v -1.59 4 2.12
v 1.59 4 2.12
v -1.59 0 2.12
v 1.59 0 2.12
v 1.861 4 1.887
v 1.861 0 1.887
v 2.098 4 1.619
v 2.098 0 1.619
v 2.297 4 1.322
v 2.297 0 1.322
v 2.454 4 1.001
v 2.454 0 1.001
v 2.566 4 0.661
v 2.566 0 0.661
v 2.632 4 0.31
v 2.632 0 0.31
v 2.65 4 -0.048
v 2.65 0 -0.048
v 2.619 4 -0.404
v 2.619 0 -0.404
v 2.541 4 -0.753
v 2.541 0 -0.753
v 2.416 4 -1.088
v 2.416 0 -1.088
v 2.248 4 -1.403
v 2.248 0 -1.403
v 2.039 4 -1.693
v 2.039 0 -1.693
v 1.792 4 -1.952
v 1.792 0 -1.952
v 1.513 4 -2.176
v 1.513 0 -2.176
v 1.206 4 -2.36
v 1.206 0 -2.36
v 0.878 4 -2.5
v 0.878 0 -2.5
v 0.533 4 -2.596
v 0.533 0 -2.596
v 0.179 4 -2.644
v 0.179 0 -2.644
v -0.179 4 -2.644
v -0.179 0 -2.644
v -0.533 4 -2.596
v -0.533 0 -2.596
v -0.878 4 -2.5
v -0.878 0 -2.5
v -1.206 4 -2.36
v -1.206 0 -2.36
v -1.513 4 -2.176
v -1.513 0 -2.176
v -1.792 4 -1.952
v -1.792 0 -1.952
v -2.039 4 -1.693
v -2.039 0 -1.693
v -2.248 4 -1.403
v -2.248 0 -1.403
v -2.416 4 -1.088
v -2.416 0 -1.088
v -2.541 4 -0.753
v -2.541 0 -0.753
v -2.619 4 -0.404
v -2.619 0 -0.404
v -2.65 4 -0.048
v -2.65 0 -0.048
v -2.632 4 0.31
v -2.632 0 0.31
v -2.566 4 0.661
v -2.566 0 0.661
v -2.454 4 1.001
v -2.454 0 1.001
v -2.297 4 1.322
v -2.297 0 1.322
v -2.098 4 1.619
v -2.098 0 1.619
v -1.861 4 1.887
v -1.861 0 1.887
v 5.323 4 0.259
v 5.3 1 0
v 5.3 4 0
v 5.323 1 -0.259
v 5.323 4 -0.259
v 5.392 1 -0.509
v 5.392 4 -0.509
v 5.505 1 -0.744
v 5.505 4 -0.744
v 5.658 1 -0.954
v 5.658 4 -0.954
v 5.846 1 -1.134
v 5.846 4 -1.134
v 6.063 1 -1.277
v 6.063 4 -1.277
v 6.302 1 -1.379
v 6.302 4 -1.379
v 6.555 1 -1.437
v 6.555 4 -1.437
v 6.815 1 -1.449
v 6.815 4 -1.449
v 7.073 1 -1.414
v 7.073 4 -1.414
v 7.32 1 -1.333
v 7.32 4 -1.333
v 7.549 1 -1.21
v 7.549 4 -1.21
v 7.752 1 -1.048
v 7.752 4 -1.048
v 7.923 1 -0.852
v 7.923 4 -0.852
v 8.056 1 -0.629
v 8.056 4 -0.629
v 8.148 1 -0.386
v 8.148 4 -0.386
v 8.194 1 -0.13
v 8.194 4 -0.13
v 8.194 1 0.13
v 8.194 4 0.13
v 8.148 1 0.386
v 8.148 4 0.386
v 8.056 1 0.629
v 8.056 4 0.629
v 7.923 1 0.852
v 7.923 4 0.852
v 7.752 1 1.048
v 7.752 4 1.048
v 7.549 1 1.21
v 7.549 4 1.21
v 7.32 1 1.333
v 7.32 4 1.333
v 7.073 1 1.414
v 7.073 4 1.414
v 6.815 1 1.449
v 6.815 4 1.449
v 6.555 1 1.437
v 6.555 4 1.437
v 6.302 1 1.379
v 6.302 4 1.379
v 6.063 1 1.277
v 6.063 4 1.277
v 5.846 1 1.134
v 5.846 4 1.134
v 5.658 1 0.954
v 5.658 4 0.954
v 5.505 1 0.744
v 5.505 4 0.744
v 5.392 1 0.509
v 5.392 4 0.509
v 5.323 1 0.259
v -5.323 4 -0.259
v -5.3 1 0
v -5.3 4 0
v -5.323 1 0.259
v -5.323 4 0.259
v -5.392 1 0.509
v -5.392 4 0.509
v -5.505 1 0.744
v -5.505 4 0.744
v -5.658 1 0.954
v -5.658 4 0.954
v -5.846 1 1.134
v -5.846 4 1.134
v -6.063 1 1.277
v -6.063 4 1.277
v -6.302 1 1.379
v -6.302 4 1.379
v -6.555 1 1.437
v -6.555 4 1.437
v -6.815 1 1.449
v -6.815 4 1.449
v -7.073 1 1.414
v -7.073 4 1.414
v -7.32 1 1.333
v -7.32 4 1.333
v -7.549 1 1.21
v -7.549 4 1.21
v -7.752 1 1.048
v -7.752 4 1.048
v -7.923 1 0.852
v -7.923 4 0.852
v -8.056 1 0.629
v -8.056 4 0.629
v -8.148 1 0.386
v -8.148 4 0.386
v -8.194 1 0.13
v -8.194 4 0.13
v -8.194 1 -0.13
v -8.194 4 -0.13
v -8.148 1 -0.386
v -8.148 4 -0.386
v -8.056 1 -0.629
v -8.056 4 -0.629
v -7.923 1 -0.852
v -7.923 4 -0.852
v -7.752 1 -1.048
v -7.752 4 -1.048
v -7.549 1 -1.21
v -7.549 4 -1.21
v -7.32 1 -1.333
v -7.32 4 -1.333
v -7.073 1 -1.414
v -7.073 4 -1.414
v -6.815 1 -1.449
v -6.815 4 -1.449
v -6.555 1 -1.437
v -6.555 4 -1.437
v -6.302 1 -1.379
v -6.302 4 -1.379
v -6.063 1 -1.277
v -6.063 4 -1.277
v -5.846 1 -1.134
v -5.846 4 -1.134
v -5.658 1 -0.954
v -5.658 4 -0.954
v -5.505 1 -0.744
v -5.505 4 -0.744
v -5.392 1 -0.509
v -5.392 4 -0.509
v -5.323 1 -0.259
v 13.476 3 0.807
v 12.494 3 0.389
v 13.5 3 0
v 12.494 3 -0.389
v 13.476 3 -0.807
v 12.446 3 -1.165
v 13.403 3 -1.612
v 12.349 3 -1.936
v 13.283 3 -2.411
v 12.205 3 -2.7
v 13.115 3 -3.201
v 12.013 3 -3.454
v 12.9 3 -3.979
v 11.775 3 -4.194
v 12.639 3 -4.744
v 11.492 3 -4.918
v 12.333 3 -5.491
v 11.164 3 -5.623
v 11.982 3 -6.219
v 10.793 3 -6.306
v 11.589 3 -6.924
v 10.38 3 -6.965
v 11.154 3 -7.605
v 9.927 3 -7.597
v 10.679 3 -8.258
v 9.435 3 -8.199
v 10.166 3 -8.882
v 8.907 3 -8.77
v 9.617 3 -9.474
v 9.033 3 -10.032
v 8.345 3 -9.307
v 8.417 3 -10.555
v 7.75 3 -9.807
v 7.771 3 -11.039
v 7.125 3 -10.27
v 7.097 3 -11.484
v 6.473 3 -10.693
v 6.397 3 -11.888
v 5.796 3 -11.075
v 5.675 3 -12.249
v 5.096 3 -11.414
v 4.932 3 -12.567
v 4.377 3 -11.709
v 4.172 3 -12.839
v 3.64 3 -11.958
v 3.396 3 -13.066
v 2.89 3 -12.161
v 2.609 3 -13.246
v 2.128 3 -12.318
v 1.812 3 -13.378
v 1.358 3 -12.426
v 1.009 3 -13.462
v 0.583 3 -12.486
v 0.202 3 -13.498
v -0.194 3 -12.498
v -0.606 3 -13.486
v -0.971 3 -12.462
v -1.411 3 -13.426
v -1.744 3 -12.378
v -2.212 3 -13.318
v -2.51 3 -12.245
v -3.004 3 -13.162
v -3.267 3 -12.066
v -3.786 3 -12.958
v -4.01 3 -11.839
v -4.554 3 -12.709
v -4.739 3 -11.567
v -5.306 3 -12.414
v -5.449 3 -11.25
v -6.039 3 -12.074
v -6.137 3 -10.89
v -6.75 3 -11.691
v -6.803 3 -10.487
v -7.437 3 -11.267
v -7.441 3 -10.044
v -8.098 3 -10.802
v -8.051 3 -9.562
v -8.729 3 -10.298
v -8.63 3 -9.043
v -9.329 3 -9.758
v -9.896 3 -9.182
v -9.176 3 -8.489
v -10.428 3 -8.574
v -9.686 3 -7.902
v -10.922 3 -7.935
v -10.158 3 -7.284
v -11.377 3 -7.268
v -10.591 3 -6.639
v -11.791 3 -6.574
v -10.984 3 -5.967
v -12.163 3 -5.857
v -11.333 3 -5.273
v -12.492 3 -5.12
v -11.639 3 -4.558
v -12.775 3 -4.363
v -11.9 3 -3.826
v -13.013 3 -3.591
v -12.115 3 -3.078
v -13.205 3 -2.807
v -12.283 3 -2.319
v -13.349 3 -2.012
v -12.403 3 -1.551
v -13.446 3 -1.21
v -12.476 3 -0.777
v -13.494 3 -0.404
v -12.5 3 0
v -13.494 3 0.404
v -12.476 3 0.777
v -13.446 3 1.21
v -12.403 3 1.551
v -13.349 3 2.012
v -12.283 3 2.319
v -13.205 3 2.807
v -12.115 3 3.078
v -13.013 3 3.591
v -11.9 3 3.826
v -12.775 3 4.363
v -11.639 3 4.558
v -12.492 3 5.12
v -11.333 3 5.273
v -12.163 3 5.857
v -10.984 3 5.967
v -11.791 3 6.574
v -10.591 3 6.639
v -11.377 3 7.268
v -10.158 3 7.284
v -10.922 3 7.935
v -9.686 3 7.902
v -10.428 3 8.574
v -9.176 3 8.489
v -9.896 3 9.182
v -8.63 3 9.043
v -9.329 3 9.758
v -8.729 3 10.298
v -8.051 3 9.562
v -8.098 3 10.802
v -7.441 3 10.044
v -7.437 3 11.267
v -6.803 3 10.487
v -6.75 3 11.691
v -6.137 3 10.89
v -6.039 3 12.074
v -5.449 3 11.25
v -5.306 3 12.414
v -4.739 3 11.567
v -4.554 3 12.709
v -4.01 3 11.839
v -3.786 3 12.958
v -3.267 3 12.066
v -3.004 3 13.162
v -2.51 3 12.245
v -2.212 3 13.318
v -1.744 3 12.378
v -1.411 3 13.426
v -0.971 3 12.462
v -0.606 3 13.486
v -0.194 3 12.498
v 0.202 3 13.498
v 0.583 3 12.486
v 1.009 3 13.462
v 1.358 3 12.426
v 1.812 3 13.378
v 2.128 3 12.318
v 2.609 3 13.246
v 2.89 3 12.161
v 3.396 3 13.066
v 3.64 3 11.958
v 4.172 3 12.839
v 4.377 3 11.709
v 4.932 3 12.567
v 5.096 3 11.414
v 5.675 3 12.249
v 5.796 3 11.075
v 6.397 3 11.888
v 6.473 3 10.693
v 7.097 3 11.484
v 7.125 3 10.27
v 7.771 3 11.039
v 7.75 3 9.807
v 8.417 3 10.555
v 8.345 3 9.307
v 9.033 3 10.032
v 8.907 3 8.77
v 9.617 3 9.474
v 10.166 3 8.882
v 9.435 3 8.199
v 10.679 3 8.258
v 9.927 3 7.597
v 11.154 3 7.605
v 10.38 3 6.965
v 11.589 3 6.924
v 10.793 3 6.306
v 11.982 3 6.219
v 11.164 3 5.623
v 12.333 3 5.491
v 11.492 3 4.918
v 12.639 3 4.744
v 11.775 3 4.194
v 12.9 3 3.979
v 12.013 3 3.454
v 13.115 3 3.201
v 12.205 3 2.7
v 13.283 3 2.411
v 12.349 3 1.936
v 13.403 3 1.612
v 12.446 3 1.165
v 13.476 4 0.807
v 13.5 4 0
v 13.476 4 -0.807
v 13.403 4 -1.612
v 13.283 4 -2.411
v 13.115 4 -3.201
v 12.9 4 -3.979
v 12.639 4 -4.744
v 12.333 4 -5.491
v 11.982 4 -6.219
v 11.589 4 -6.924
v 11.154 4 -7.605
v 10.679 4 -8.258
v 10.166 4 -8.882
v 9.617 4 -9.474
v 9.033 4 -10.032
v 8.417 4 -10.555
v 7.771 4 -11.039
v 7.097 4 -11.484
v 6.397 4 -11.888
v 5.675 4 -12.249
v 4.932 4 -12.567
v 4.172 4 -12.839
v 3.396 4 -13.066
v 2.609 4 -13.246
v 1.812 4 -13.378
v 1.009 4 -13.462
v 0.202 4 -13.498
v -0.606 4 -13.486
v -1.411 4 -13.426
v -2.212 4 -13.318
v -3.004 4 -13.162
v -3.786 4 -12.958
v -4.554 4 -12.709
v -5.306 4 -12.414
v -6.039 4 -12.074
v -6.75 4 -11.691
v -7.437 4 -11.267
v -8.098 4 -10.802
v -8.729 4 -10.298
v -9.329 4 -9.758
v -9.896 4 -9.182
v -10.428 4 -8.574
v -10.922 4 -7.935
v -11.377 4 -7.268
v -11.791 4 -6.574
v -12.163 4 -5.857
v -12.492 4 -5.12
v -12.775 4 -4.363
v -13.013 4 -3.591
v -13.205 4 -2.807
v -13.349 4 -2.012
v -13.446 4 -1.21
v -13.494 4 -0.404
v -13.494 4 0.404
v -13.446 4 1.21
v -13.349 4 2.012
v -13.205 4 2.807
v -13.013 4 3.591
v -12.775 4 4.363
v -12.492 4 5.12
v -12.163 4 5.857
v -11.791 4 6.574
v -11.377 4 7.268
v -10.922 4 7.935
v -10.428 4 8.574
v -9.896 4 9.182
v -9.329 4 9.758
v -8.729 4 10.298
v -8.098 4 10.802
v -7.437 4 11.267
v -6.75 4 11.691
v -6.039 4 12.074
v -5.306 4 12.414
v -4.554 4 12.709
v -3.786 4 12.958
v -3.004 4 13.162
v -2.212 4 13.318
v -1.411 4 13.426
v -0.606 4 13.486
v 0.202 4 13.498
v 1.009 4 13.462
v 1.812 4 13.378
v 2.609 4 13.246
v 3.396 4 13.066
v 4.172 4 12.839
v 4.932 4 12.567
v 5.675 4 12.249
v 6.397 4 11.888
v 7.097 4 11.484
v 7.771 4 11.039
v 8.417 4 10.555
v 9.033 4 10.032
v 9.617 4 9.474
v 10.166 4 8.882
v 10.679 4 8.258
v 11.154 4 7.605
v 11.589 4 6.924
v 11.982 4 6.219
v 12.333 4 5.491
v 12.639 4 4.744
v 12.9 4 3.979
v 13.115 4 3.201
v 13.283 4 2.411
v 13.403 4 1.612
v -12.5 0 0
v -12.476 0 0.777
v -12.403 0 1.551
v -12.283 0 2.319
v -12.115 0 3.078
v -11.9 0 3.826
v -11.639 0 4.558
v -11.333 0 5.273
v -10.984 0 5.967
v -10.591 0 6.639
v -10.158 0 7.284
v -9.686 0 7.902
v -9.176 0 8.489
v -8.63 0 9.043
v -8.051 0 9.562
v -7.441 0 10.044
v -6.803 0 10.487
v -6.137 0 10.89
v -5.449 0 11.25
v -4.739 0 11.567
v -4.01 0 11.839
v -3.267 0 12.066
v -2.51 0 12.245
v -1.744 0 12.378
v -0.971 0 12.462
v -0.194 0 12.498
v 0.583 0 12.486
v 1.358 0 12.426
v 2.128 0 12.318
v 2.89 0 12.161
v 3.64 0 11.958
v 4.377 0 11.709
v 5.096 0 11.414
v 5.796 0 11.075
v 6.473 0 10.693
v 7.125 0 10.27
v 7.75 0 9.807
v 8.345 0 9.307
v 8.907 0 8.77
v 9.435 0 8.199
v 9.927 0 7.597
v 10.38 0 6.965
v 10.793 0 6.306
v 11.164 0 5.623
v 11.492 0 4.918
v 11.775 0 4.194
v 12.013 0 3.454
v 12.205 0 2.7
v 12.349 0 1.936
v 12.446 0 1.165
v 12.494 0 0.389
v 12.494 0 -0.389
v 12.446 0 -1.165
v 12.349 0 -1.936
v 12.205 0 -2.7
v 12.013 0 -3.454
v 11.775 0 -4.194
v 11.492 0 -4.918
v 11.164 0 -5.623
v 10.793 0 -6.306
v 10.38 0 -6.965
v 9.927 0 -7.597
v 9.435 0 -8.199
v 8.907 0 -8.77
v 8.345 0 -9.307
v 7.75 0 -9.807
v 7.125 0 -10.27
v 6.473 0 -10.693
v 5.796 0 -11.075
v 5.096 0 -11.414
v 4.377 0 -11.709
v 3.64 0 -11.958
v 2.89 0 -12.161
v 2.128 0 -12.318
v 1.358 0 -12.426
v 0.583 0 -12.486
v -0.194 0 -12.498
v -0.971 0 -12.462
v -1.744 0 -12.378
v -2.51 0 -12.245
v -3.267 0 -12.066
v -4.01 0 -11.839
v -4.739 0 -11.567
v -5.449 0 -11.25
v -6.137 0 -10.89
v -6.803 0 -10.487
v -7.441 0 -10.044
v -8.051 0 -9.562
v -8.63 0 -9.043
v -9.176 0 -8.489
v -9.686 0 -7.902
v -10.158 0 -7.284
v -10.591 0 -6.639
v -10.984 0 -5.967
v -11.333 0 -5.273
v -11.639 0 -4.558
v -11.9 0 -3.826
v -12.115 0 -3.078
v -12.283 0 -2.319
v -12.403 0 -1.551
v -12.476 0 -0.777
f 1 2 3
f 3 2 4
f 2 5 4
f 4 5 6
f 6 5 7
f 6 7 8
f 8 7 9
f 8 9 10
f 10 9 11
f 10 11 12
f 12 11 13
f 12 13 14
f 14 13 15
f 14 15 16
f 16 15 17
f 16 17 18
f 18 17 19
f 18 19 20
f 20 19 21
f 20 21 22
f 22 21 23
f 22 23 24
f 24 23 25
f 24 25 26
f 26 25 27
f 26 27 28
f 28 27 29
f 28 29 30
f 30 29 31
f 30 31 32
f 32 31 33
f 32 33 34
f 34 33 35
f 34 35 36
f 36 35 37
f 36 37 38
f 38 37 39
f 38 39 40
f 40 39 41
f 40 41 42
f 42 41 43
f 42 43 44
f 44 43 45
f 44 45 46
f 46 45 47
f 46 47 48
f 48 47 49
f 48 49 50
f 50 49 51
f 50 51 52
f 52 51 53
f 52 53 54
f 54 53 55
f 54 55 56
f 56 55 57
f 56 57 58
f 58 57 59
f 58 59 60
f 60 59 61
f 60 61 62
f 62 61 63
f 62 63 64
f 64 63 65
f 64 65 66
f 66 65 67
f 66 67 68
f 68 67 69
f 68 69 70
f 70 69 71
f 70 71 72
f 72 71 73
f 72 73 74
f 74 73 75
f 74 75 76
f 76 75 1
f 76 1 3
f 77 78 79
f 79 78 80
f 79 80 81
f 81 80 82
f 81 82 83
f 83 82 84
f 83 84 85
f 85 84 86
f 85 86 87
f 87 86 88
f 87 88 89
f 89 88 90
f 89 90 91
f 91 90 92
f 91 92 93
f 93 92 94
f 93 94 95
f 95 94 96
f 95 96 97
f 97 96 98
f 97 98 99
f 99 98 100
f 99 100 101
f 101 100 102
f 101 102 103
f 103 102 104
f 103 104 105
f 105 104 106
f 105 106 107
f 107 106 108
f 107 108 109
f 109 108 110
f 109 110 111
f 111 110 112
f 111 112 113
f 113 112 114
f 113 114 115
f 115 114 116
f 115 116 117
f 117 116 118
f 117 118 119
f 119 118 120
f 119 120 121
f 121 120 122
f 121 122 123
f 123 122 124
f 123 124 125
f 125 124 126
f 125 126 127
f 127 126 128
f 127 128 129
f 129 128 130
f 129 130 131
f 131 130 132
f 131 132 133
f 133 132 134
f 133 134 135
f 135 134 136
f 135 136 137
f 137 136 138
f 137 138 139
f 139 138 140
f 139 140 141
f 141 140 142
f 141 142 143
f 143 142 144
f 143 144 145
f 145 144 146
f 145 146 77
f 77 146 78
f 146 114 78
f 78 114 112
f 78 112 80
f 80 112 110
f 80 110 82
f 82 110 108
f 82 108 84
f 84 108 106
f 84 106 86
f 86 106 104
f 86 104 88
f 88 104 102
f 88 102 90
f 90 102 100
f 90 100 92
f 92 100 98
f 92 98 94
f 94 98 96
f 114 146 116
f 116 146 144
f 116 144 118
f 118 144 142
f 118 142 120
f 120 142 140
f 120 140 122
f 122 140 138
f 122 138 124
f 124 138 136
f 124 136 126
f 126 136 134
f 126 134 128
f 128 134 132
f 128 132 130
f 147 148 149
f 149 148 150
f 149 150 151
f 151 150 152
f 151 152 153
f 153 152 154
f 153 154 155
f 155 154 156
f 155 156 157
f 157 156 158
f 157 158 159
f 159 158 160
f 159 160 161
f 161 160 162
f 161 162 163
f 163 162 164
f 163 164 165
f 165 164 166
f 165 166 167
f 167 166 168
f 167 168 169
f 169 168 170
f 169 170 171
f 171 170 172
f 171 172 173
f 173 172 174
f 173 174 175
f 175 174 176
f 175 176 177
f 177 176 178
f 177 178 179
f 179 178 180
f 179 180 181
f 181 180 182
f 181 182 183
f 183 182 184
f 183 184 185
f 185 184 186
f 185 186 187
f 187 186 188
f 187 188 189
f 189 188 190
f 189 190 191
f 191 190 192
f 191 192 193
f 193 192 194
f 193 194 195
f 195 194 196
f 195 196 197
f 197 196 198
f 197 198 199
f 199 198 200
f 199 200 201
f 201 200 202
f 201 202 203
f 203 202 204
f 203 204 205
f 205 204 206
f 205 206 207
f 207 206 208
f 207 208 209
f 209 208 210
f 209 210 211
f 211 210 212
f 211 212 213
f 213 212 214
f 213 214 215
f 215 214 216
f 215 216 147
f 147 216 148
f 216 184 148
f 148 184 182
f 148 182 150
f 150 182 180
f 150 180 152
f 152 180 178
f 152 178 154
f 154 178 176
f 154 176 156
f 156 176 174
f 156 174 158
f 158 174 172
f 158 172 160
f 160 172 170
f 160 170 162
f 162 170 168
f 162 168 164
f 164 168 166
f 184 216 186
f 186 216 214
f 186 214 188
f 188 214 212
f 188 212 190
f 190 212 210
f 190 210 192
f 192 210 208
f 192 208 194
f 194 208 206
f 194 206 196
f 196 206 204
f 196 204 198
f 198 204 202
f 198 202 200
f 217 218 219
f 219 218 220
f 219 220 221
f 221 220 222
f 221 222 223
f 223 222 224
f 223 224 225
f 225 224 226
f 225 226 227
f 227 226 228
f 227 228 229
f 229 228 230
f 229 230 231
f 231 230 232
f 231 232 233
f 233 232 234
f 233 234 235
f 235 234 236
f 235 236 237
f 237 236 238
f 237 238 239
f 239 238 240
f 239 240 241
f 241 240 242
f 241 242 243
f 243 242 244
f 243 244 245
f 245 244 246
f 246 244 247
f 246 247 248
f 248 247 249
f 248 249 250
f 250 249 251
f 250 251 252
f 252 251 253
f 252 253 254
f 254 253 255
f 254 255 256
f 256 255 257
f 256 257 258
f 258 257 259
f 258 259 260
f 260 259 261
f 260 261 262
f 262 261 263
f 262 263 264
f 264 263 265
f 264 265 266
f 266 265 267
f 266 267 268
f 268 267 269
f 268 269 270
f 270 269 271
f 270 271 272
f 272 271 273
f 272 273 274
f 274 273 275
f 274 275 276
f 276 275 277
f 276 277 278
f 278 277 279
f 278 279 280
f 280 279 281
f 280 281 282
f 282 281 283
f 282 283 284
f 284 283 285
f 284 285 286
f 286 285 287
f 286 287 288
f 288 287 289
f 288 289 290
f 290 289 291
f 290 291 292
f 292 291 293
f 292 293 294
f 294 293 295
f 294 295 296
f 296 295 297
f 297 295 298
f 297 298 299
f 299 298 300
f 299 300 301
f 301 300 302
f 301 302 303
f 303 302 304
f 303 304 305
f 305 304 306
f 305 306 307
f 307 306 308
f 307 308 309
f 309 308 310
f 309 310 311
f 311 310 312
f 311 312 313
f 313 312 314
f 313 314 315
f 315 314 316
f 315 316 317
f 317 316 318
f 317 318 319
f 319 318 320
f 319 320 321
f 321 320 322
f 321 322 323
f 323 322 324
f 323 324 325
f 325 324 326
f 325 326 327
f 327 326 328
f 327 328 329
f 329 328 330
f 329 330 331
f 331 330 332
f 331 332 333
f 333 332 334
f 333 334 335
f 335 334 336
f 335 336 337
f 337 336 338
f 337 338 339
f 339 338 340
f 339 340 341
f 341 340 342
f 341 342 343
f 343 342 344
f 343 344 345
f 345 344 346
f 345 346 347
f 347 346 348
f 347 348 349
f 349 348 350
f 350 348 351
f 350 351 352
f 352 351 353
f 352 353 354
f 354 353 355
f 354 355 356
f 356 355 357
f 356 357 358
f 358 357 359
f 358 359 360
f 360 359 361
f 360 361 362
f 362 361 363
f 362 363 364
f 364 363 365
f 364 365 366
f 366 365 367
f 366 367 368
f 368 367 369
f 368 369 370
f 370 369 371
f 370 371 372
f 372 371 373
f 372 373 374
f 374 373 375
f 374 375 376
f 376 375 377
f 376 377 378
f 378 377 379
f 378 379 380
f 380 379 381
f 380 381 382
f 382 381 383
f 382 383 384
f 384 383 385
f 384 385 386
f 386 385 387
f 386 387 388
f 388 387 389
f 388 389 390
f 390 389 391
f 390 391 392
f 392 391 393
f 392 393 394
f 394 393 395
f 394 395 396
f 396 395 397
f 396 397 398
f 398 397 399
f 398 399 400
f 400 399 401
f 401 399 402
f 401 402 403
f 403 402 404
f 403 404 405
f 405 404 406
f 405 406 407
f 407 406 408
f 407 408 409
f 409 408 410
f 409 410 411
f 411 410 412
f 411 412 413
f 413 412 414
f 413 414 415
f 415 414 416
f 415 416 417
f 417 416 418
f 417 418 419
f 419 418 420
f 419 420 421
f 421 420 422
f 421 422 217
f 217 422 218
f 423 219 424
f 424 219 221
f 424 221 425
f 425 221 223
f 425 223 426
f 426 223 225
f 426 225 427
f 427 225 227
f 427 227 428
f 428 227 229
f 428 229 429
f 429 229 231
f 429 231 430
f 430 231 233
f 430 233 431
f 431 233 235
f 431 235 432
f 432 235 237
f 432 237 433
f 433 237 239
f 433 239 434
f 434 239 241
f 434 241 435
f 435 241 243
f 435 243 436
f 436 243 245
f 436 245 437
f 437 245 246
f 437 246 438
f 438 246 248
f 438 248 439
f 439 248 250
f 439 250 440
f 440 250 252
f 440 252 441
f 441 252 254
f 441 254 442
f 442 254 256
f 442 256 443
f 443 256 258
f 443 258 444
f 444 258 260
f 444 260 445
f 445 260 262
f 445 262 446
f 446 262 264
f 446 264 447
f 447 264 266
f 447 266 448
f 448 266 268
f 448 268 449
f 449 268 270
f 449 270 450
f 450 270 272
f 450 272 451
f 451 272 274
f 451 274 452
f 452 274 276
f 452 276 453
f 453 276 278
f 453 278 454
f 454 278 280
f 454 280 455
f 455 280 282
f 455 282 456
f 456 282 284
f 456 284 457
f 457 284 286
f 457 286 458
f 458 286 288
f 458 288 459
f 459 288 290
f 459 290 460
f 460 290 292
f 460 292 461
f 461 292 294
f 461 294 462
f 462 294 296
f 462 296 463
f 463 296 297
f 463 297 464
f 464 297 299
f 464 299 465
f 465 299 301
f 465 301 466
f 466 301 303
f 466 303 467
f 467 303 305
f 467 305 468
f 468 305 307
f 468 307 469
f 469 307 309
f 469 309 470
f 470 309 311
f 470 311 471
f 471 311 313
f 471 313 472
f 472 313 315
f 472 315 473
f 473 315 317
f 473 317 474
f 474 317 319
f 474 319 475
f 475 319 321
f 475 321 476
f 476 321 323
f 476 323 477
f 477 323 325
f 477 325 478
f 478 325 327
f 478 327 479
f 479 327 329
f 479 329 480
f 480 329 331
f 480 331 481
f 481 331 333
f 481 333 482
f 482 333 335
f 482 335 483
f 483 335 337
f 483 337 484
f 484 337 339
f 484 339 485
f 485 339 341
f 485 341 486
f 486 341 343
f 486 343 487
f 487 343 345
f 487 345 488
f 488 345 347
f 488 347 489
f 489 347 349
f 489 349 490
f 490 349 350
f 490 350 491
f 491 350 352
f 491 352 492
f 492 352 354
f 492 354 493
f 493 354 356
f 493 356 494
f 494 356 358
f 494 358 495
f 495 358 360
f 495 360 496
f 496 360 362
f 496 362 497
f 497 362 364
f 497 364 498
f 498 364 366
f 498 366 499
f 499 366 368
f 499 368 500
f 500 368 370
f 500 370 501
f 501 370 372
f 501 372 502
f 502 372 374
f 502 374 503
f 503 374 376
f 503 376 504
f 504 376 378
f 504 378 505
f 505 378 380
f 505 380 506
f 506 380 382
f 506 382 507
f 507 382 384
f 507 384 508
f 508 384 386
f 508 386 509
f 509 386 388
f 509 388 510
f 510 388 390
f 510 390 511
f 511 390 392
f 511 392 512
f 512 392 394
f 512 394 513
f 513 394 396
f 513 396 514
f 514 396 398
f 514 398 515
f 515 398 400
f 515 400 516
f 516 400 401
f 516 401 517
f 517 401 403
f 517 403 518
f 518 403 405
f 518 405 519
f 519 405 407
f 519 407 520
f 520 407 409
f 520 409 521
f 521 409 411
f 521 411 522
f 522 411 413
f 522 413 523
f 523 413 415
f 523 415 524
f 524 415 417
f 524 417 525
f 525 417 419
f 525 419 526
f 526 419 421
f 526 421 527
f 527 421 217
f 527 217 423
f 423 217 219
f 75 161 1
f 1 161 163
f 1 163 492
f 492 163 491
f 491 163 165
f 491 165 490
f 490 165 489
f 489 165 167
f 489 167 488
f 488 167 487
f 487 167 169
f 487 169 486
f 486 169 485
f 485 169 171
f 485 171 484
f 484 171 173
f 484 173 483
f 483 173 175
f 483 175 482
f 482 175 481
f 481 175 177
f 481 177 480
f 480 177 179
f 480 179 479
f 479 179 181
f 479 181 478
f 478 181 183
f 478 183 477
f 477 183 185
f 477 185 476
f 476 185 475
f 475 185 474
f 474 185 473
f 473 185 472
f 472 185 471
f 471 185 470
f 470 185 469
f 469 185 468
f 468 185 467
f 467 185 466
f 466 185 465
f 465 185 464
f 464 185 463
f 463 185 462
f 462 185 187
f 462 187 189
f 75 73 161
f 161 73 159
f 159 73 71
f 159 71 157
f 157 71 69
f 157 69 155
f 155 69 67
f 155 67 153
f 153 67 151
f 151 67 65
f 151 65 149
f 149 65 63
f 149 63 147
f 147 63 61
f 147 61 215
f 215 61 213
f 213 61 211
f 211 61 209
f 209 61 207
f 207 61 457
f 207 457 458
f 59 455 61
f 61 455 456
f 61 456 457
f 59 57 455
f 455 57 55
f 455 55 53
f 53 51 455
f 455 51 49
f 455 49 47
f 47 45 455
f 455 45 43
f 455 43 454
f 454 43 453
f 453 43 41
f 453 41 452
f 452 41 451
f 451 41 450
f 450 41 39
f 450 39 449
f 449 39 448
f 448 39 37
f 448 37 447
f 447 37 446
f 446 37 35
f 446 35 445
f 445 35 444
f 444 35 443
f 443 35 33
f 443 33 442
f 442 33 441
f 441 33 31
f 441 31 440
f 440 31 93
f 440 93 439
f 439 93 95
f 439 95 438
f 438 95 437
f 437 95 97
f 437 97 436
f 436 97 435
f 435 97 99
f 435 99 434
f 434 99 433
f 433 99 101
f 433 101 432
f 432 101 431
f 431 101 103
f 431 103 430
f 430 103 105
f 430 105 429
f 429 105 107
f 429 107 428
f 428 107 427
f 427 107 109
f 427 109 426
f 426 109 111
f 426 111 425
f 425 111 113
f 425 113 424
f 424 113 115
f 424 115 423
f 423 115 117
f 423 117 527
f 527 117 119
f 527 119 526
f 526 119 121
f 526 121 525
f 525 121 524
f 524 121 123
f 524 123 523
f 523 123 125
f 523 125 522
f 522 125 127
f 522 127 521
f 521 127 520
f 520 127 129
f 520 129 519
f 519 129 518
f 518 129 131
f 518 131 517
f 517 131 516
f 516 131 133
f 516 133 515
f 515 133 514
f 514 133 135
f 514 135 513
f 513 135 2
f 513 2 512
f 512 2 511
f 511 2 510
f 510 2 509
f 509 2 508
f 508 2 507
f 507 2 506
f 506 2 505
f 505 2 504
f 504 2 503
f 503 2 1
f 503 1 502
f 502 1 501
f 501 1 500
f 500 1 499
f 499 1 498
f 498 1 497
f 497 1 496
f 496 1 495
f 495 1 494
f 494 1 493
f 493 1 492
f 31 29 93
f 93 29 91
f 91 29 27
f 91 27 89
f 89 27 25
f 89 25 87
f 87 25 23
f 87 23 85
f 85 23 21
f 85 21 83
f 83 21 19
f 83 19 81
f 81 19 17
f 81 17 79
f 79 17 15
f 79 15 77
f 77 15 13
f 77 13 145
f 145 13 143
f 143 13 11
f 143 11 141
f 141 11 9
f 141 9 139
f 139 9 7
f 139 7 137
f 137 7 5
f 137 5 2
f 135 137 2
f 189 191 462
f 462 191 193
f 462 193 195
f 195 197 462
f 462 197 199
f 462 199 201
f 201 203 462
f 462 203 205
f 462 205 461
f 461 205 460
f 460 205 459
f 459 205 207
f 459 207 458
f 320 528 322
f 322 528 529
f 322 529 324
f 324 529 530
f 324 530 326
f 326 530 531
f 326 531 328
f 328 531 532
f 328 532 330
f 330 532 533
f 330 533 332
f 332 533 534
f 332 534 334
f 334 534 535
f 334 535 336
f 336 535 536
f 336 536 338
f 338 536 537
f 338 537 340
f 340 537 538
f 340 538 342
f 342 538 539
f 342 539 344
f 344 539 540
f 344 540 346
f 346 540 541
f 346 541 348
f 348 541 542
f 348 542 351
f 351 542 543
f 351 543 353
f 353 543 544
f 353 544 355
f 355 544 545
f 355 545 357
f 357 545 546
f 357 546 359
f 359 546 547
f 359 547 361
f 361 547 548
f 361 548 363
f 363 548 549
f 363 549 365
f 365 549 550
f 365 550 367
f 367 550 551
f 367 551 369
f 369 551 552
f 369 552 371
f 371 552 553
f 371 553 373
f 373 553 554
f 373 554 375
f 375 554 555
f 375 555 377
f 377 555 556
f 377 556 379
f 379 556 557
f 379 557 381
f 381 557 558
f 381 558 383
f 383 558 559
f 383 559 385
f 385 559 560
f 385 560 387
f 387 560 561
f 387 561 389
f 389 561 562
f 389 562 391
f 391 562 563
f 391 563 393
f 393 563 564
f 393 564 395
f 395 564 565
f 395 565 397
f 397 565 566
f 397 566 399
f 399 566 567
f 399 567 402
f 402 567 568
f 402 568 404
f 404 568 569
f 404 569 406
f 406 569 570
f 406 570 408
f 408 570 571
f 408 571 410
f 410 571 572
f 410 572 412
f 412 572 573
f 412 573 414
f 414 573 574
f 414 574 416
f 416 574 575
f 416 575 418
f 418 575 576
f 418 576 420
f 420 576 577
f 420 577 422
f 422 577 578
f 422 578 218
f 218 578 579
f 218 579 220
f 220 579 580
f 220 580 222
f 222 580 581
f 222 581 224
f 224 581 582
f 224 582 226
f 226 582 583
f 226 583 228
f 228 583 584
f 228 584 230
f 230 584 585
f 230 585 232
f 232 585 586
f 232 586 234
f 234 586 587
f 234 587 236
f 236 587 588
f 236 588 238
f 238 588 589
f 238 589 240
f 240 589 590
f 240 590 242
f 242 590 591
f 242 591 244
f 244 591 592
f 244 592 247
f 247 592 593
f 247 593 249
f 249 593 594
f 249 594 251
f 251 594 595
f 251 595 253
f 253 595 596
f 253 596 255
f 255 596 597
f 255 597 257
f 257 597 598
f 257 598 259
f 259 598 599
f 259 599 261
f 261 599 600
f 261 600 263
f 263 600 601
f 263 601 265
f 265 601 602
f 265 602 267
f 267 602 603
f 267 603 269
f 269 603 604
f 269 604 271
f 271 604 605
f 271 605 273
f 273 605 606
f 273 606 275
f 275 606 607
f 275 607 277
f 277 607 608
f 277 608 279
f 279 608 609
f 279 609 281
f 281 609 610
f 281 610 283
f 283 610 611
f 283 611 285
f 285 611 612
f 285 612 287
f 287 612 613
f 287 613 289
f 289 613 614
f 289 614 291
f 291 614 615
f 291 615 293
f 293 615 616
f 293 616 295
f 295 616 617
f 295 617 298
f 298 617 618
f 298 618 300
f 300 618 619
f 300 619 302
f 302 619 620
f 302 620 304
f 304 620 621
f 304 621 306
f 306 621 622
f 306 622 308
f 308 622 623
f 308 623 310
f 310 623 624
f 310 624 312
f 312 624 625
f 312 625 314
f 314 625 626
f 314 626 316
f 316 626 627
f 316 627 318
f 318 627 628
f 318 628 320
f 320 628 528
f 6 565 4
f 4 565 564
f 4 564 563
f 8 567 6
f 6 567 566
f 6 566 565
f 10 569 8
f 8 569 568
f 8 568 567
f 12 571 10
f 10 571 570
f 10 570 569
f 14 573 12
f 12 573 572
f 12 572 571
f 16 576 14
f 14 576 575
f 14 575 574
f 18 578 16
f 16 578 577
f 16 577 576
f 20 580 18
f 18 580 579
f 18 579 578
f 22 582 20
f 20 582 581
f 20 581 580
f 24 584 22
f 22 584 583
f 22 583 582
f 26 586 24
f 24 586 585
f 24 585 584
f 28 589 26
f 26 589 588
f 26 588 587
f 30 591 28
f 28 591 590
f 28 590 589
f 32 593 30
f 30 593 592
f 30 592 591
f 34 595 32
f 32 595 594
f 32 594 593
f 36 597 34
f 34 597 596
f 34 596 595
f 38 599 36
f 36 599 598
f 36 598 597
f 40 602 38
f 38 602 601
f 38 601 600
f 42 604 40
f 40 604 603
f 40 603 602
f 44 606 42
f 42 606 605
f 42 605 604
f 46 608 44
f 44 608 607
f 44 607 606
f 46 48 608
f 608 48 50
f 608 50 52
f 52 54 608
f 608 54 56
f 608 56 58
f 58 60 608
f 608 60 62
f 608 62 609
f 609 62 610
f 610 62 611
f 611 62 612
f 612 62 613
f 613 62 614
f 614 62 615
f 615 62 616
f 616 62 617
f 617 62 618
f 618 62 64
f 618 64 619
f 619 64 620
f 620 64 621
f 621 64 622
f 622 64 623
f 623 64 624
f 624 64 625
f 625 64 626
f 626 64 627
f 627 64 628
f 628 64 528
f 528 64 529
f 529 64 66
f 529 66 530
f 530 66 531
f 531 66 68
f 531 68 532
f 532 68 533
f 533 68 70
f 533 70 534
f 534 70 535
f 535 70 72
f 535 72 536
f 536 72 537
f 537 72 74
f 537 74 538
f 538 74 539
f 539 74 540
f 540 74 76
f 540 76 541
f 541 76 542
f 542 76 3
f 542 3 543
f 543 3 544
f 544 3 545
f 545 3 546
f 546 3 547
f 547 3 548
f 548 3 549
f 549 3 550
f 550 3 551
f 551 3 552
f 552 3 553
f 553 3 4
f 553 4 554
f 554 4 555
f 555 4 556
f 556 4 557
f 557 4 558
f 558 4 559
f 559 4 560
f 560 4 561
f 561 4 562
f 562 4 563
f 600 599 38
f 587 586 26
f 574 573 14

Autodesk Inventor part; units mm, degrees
ref_plane "YZ Plane" through (0, 0, 0) normal (1, 0, 0) x (0, 1, 0)
ref_plane "XZ Plane" through (0, 0, 0) normal (0, 1, 0) x (-1, 0, 0)
ref_plane "XY Plane" through (0, 0, 0) normal (0, 0, 1) x (1, 0, 0)
sketch "Szkic1" plane through (0, 0, 0) normal (0, 1, 0) x (-1, 0, 0)
  circle A0 centre (0, 0) radius 12.5
  dimension "d0" = 25
extrude "Wyciągnięcie proste1" add sketch "Szkic1" along normal blind 3
sketch "Szkic6" plane through (0, 3, 0) normal (0, 1, 0) x (1, 0, 0)
  circle A0 centre (0, 0) radius 13.5
  dimension "d13" = 27
extrude "Wyciągnięcie proste5" add sketch "Szkic6" along normal blind 1
sketch "Szkic7" plane through (0, 4, 0) normal (0, 1, 0) x (1, 0, 0)
  point P0 (0, 0)
  point P1 (-6.75, 0)
  dimension "d16" = 6.75
hole "Otwór1" at (-6.75, 4, 0) direction (0, -1, 0) diameter 2.9 depth 3
pattern_circular "Szyk kołowy1" count 2 over 360 about axis through (0, 3, 0) along (0, 1, 0) of "Otwór1"
sketch "Szkic8" plane through (0, 0, 0) normal (0, -1, 0) x (1, 0, 0)
  arc A0 (-1.59, 2.12) -> (1.59, 2.12) centre (0, 0) ccw
  line L0 (1.59, 2.12) -> (-1.59, 2.12)
  dimension "d27" = 5.3
extrude "Wyciągnięcie proste6" cut sketch "Szkic8" against normal through all
properties part number "_Drukowanie 3D"
